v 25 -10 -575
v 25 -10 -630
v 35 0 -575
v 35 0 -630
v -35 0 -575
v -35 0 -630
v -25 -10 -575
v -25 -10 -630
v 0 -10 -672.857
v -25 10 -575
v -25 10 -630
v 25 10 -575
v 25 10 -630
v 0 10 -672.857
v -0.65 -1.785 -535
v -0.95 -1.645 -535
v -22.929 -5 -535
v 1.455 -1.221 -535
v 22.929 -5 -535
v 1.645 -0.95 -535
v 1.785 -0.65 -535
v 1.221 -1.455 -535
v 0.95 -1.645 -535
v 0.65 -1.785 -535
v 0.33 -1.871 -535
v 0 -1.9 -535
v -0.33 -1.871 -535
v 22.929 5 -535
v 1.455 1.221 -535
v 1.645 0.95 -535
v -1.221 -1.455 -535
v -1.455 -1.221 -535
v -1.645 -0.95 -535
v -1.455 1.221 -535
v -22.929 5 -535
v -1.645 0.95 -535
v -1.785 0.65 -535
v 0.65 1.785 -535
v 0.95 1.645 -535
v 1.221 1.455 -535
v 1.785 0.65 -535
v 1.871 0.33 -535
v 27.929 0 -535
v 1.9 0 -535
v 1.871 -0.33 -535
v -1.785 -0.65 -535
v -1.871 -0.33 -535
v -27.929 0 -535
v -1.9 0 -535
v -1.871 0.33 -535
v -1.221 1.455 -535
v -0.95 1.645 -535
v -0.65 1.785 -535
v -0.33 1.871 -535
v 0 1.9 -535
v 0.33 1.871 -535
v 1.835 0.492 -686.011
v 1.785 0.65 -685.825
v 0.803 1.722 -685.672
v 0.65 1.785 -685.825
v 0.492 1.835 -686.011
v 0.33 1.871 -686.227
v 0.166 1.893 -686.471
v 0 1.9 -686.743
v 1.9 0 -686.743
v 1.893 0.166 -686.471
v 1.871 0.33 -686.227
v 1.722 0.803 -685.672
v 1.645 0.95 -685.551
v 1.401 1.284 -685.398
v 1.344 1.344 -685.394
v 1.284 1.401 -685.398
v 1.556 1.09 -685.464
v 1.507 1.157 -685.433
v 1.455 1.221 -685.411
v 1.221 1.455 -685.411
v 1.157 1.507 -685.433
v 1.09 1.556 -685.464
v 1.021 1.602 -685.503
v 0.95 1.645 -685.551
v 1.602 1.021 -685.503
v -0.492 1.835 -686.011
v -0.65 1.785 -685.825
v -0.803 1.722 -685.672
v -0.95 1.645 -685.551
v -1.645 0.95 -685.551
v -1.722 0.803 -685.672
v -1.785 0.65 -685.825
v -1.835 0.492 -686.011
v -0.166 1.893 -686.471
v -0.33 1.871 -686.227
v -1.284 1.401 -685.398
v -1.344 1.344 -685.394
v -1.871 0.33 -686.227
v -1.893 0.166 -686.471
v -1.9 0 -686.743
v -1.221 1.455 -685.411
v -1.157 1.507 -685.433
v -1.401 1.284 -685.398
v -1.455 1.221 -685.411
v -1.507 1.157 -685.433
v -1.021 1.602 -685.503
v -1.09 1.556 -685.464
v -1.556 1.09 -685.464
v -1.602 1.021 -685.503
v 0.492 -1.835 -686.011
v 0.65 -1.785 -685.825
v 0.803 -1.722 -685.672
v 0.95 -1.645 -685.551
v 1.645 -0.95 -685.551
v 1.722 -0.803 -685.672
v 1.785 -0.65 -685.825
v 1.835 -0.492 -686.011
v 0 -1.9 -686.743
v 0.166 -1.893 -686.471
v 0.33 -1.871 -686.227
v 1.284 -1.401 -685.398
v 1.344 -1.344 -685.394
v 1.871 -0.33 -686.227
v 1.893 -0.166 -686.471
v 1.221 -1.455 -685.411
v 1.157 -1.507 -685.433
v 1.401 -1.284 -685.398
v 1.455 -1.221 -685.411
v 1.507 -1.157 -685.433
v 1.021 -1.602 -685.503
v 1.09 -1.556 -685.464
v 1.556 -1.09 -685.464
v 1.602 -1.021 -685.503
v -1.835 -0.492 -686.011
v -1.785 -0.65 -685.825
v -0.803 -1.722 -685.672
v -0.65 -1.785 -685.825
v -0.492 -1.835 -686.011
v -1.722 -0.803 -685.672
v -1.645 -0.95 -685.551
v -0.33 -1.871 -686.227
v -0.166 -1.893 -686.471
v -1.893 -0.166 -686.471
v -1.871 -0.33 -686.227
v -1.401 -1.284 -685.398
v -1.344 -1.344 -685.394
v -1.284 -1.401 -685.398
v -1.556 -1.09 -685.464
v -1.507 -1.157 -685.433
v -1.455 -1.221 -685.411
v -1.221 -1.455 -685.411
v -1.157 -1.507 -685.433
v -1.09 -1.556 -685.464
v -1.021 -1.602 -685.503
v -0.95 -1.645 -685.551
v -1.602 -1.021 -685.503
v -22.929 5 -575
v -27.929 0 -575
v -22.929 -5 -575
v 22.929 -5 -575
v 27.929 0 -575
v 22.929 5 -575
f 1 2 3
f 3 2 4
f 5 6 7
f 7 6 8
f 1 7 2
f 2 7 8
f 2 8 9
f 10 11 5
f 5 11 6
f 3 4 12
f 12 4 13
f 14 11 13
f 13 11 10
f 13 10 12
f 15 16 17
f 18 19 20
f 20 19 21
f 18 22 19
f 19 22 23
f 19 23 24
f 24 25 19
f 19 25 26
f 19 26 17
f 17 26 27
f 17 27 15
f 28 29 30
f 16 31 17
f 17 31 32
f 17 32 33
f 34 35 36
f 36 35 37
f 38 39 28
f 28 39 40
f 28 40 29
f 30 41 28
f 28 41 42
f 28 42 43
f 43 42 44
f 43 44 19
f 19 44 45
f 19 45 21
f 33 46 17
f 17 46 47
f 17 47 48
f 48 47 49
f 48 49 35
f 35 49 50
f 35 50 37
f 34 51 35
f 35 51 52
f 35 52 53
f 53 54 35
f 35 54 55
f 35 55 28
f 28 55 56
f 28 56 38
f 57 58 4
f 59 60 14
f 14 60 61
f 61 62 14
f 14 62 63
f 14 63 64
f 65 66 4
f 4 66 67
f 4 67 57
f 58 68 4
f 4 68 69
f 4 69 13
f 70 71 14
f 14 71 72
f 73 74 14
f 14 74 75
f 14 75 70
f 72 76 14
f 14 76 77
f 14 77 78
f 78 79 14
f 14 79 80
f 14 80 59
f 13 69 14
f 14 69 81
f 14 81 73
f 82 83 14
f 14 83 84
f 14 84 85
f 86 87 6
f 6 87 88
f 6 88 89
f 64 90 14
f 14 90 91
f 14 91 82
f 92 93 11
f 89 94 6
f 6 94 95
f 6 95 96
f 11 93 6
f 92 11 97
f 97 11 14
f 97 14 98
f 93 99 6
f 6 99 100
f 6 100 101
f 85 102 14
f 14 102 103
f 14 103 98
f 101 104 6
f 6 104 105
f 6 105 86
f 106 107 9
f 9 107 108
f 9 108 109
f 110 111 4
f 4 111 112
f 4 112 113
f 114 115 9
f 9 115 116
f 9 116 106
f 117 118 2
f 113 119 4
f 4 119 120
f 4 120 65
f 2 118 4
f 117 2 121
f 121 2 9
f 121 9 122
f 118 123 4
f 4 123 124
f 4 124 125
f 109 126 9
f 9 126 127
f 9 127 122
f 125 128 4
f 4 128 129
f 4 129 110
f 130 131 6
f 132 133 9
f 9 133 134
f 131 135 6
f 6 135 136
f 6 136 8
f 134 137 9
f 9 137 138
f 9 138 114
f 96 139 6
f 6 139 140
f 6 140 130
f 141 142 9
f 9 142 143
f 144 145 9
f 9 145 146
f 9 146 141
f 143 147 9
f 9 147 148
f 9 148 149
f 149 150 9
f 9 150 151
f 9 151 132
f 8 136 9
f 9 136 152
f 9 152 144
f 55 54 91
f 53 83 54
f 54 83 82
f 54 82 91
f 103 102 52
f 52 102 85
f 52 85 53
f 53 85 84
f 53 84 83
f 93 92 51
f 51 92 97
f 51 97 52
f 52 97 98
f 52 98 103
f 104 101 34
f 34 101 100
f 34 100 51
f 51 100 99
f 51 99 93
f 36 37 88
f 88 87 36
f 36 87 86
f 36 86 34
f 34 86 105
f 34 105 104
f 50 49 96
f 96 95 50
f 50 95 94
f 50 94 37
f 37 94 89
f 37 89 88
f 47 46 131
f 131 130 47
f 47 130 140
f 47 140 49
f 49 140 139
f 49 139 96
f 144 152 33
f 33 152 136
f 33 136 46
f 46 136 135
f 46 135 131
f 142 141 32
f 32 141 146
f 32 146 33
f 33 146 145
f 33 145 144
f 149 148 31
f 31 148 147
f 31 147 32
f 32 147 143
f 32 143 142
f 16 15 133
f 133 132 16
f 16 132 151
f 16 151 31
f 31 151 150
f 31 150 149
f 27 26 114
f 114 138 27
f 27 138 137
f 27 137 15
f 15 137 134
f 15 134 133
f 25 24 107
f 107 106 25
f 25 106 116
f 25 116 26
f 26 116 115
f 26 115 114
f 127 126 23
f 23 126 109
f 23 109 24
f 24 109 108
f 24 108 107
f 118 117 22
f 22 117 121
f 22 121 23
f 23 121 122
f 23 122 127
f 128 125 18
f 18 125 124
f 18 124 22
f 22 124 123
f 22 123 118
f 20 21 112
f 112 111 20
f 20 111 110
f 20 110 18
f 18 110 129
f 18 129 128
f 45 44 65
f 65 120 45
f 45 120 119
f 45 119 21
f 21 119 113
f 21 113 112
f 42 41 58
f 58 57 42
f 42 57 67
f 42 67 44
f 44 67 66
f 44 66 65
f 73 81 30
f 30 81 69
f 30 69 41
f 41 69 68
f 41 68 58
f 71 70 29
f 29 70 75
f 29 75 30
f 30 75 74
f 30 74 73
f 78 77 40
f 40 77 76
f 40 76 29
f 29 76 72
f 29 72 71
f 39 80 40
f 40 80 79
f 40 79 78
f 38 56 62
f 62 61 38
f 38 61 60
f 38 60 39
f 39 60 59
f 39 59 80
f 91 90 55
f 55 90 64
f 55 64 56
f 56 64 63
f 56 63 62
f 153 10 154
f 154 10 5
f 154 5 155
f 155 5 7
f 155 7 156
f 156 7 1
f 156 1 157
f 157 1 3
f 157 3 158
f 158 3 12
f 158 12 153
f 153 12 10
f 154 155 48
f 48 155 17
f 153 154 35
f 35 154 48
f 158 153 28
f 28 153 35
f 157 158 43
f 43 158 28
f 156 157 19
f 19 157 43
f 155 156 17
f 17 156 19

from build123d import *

# Parameters (mm, degrees)
EXTRUDE_1_DEPTH          = 18
CHAMFER_1_SIZE           = 5
CHAMFER_2_SIZE           = 5
CUT_EXTRUDE_1_DEPTH      = 8
EXTRUDE_2_REACH          = 696.741
EXTRUDE_2_END_RADIUS     = 240
EXTRUDE_3_DEPTH          = 5
EXTRUDE_4_REACH          = 929.644
EXTRUDE_4_END_RADIUS     = 232
SKETCH_10_R              = 12
CUT_EXTRUDE_7_DEPTH      = 695.872110635
CUT_EXTRUDE_7_DEPTH_BACK = 695.872110635
SKETCH_16_OUTSIDE_W      = 362.68
SKETCH_16_OUTSIDE_H      = 1204.68
SKETCH_16_OUTSIDE_W_2    = 100
SKETCH_16_OUTSIDE_H_2    = 155
SKETCH_21_R              = 1.9
CUT_EXTRUDE_17_DEPTH     = 160.216833407
SKETCH_34_OUTSIDE_W      = 105.66
SKETCH_34_OUTSIDE_H      = 55.66
CUT_EXTRUDE_18_DEPTH     = 40


with BuildPart() as part:
    # 草图4 → 放样1 section 0
    with BuildSketch(Plane(origin=(0, 10, 0), x_dir=(1, 0, 0), z_dir=(0, 1, 0))):
        with BuildLine():
            Line((25, 0), (-25, 0))
            Line((-25, 0), (-25, 630))
            Line((-25, 630), (0, 672.857142857))
            Line((0, 672.857142857), (25, 630))
            Line((25, 630), (25, 0))
        make_face()
    # 草图1 → 放样1 section 1
    with BuildSketch(Plane(origin=(0, 0, 0), x_dir=(1, 0, 0), z_dir=(0, 1, 0))):
        with BuildLine():
            Line((-35, 0), (35, 0))
            Line((35, 0), (35, 630))
            Line((35, 630), (0, 690))
            Line((0, 690), (-35, 630))
            Line((-35, 630), (-35, 0))
        make_face()
    loft_1 = loft()

    # 镜向1: 放样1 across plane
    add(loft_1.mirror(Plane.ZX))



with BuildPart() as body_2:
    # 草图5 → 凸台-拉伸1 (new, symmetric)
    with BuildSketch(Plane(origin=(0, 0, 0), x_dir=(1, 0, 0), z_dir=(0, 1, 0))):
        with BuildLine():
            ThreePointArc((-66.346774613, -65.189169183), (0, -55.5), (66.346774613, -65.189169183))
            ThreePointArc((66.346774613, -65.189169183), (73.061224406, -64.270510235), (76.791165228, -58.612302768))
            ThreePointArc((76.791165228, -58.612302768), (79, -30.5), (76.791165228, -2.387697232))
            ThreePointArc((76.791165228, -2.387697232), (0, -15.004503167), (-76.791165228, -2.387697232))
            ThreePointArc((-76.791165228, -2.387697232), (-79, -30.5), (-76.791165228, -58.612302768))
            ThreePointArc((-76.791165228, -58.612302768), (-73.061224406, -64.270510235), (-66.346774613, -65.189169183))
        make_face()
    extrude(amount=EXTRUDE_1_DEPTH, both=True)

    # 倒角1
    chamfer_1_edges = [body_2.edges().sort_by_distance(p)[0] for p in [
        (0, 18, 15.004503167),
        (-79, 18, 30.5),
        (-73.061224406, 18, 64.270510235),
        (0, 18, 55.5),
        (73.061224406, 18, 64.270510235),
        (0, -18, 55.5),
        (-73.061224406, -18, 64.270510235),
        (-79, -18, 30.5),
        (79, -18, 30.5),
        (73.061224406, -18, 64.270510235),
        (79, 18, 30.5),
    ]]
    chamfer(chamfer_1_edges, length=CHAMFER_1_SIZE)

    # 倒角2
    chamfer_2_edges = [body_2.edges().sort_by_distance(p)[0] for p in [
        (0, -18, 15.004503167),
    ]]
    chamfer(chamfer_2_edges, length=CHAMFER_2_SIZE)

    # 草图6 → 切除-拉伸1 (cut)
    with BuildSketch(Plane(origin=(0, 18, 0), x_dir=(1, 0, 0), z_dir=(0, 1, 0))):
        with BuildLine():
            ThreePointArc((67.221840199, -55.023712607), (68.932610365, -35.286223394), (68.335500378, -15.483731767))
            ThreePointArc((68.335500378, -15.483731767), (0, -25.004503167), (-68.335500378, -15.483731767))
            ThreePointArc((-68.335500378, -15.483731767), (-68.932610365, -35.286223394), (-67.221840199, -55.023712607))
            ThreePointArc((-67.221840199, -55.023712607), (0, -45.5), (67.221840199, -55.023712607))
        make_face()
    cut_extrude_1 = extrude(amount=-CUT_EXTRUDE_1_DEPTH, mode=Mode.SUBTRACT)

    # 镜向2: 切除-拉伸1 across plane
    add(cut_extrude_1.mirror(Plane.ZX), mode=Mode.SUBTRACT)


with BuildPart() as part_1:
    add(part.part)

    add(body_2.part)  # 凸台-拉伸2 merges body 2
    # 凸台-拉伸2: up to this cylinder (the profile starts inside it)
    extrude_2_end = Plane(origin=(0, 0, -224.995496833), z_dir=(0, -1, 0)) * Cylinder(EXTRUDE_2_END_RADIUS, 1874.482, mode=Mode.PRIVATE)
    # 草图7 → 凸台-拉伸2 (add, up to the surface)
    with BuildSketch(Plane.XY, mode=Mode.PRIVATE) as extrude_2_sk1:
        Polygon((-25.828427125, 12), (-37.828427125, 0), (-25.828427125, -12), (25.828427125, -12), (37.828427125, 0), (25.828427125, 12), align=None)
    extrude_2_tool1 = extrude(extrude_2_sk1.sketch, amount=EXTRUDE_2_REACH, mode=Mode.PRIVATE) & extrude_2_end
    add(extrude_2_tool1.solids().sort_by_distance((0, 0, 0))[0])

    # 草图8 → 凸台-拉伸3 (add)
    with BuildSketch(Plane(origin=(0, 0, 0), x_dir=(-1, 0, 0), z_dir=(0, 0, -1))):
        Polygon((25.828427125, 12), (-25.828427125, 12), (-37.828427125, 0), (-25.828427125, -12), (25.828427125, -12), (37.828427125, 0), align=None)
    extrude(amount=EXTRUDE_3_DEPTH)



with BuildPart() as body_2_2:
    # 草图9 → 旋转1 (revolve)
    with BuildSketch(Plane(origin=(0, 0, 0), x_dir=(1, 0, 0), z_dir=(0, 1, 0))):
        Polygon((0, -310), (0, -234), (-12, -234), (-22.5, -256), align=None)
    revolve(axis=Axis((0, 0, -690), (0, 0, 1)))


with BuildPart() as part_2:
    add(part_1.part)

    add(body_2_2.part)  # 凸台-拉伸4 merges body 2 2
    # 凸台-拉伸4: up to this cylinder (the profile starts inside it)
    extrude_4_end = Plane(origin=(0, 0, 287.5), z_dir=(0, -1, 0)) * Cylinder(EXTRUDE_4_END_RADIUS, 2324.288, mode=Mode.PRIVATE)
    # 草图10 → 凸台-拉伸4 (add, up to the surface)
    with BuildSketch(Plane(origin=(0, 0, 234), x_dir=(-1, 0, 0), z_dir=(0, 0, -1)), mode=Mode.PRIVATE) as extrude_4_sk1:
        with Locations(Location((0, 0, 0), (0, 0, 90))):
            Circle(SKETCH_10_R)
    extrude_4_tool1 = extrude(extrude_4_sk1.sketch, amount=EXTRUDE_4_REACH, mode=Mode.PRIVATE) & extrude_4_end
    add(extrude_4_tool1.solids().sort_by_distance((0, 0, 234))[0])

    # 草图16 outside → 切除-拉伸7 (cut, two sides: drawn at the far end of the back side and taken through both)
    with BuildSketch(Plane(origin=(0, 0, 0), x_dir=(1, 0, 0), z_dir=(0, 1, 0)).offset(-CUT_EXTRUDE_7_DEPTH_BACK)):
        with Locations((0, 190)):
            Rectangle(SKETCH_16_OUTSIDE_W, SKETCH_16_OUTSIDE_H)
        with Locations((0, 612.5)):
            Rectangle(SKETCH_16_OUTSIDE_W_2, SKETCH_16_OUTSIDE_H_2, mode=Mode.SUBTRACT)
    extrude(amount=CUT_EXTRUDE_7_DEPTH + CUT_EXTRUDE_7_DEPTH_BACK, mode=Mode.SUBTRACT)

    # 草图21 → 切除-拉伸17 (cut, through all)
    with BuildSketch(Plane.XY.offset(-535)):
        Circle(SKETCH_21_R)
    extrude(amount=-CUT_EXTRUDE_17_DEPTH, mode=Mode.SUBTRACT)

    # 草图34 outside → 切除-拉伸18 (cut)
    with BuildSketch(Plane.XY.offset(-535)):
        Rectangle(SKETCH_34_OUTSIDE_W, SKETCH_34_OUTSIDE_H)
        Polygon((-22.928932188, -5), (22.928932188, -5), (27.928932188, 0), (22.928932188, 5), (-22.928932188, 5), (-27.928932188, 0), align=None, mode=Mode.SUBTRACT)
    extrude(amount=-CUT_EXTRUDE_18_DEPTH, mode=Mode.SUBTRACT)


solid = part_2.part
